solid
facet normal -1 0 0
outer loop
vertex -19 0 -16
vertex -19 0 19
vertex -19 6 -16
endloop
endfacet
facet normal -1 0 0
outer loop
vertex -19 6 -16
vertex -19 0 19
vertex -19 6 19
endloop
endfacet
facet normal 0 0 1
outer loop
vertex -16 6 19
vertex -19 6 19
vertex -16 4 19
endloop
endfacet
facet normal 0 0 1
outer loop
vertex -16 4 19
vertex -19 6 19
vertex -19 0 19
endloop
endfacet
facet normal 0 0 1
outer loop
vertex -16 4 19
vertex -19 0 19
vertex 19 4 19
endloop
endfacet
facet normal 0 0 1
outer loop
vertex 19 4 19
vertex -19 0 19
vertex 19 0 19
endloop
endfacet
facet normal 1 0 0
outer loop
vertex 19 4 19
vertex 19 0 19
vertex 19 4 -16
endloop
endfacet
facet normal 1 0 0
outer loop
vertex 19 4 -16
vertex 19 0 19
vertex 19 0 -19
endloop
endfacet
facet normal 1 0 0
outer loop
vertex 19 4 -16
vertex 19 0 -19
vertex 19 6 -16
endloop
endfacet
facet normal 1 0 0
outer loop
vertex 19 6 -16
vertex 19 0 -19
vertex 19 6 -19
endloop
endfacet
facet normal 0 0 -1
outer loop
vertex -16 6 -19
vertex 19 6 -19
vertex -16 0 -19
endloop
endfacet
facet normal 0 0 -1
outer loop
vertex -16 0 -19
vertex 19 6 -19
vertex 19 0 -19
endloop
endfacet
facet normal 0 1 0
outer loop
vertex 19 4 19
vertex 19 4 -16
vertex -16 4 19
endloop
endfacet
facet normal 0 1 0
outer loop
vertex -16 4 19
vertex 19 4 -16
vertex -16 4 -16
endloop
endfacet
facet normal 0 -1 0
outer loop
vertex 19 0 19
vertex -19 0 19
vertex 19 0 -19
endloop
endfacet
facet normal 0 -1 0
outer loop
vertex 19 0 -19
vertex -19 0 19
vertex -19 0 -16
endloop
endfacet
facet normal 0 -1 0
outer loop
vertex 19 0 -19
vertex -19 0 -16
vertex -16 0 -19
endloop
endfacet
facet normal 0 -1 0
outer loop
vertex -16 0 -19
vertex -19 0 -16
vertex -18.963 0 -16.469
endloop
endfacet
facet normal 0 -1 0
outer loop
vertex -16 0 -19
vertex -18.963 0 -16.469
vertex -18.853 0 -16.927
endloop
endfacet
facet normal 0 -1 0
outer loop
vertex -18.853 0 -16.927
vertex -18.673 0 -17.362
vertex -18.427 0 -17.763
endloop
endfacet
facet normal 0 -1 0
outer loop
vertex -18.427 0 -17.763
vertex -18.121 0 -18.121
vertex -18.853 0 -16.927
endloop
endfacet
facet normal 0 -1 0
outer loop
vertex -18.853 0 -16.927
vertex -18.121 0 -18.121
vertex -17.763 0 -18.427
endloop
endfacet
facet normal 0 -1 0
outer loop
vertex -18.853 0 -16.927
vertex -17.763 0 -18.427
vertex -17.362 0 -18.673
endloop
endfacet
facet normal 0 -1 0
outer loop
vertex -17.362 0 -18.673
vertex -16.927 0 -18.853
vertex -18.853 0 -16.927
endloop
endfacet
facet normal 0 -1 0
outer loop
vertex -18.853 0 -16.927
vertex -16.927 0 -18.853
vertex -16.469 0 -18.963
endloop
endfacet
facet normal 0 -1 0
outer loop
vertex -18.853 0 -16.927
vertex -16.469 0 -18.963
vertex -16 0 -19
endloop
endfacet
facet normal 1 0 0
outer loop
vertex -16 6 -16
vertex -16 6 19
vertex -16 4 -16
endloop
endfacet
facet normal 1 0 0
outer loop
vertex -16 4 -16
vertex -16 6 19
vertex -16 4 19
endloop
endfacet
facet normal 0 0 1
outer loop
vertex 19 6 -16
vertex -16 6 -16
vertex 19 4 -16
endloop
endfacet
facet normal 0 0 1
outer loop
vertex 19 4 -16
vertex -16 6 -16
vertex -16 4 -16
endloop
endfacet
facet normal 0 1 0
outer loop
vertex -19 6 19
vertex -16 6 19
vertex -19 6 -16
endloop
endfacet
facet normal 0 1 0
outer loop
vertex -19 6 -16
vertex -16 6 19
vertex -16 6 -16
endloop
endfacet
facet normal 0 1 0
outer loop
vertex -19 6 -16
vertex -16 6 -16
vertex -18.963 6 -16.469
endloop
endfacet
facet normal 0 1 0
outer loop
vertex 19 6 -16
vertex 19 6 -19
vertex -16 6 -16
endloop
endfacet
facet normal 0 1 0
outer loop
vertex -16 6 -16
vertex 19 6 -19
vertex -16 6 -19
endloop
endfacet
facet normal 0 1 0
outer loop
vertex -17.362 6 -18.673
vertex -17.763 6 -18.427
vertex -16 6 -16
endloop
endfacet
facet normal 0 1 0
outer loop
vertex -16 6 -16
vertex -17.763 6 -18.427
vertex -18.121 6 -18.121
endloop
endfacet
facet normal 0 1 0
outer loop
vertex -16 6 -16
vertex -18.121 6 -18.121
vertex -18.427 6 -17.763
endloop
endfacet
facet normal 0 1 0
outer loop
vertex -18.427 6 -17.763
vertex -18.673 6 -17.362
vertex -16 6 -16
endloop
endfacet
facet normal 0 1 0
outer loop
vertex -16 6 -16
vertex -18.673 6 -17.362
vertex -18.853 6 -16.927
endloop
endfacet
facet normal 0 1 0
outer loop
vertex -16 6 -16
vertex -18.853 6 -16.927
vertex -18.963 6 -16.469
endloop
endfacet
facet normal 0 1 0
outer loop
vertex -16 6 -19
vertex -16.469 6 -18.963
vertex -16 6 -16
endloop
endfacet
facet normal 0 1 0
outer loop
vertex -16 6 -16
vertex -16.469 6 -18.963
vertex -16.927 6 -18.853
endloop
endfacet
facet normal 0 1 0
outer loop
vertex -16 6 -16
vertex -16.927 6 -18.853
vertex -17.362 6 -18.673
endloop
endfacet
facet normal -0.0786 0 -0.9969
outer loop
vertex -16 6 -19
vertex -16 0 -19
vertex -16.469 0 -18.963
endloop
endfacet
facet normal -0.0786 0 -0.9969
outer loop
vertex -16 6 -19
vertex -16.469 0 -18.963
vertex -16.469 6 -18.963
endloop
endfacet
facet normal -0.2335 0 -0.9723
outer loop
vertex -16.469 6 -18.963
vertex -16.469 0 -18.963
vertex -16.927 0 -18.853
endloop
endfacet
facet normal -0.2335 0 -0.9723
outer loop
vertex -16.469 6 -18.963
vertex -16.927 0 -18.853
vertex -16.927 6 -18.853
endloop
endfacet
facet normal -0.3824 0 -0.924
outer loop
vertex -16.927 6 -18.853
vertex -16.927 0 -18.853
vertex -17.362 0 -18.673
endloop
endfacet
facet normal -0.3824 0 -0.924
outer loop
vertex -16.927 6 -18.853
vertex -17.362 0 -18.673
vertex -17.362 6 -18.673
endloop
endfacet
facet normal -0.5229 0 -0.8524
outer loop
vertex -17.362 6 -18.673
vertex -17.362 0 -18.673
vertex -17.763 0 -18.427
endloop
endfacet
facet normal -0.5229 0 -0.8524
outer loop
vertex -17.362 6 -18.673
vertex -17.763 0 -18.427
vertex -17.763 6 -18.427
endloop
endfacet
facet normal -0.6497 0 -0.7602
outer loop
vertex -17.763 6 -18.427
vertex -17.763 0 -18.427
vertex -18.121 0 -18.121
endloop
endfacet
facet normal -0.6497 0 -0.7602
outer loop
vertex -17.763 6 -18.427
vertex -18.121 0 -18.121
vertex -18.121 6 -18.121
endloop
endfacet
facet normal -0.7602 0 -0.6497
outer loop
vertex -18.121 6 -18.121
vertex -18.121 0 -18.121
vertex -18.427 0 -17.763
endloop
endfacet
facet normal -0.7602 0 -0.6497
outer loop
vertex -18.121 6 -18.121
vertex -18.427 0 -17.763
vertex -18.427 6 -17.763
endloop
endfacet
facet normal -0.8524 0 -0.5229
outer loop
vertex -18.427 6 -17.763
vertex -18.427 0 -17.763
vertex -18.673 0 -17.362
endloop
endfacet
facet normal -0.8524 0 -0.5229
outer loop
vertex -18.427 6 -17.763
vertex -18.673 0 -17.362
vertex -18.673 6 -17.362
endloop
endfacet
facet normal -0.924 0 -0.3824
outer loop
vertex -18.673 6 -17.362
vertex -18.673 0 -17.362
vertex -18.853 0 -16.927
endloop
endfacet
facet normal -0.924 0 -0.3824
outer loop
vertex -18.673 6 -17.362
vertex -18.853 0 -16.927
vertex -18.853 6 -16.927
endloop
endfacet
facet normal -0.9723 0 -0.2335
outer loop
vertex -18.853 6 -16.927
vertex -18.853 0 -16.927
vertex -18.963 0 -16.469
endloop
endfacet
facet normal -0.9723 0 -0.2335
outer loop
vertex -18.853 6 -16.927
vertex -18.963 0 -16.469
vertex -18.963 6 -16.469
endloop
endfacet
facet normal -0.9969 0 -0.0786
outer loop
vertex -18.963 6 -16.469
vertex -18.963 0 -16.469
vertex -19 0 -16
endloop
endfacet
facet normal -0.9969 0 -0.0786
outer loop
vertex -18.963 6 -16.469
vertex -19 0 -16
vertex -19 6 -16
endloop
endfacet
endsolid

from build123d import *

# Parameters (mm, degrees)
SKETCH1_W           = 38
SKETCH1_H           = 38
BOSS_EXTRUDE1_DEPTH = 4
BOSS_EXTRUDE2_DEPTH = 2
FILLET1_R           = 3


with BuildPart() as part:
    # Sketch1 → Boss-Extrude1 (new body)
    with BuildSketch(Plane(origin=(0, 0, 0), x_dir=(1, 0, 0), z_dir=(0, 1, 0))):
        Rectangle(SKETCH1_W, SKETCH1_H)
    extrude(amount=BOSS_EXTRUDE1_DEPTH)

    # Sketch2 → Boss-Extrude2 (add)
    with BuildSketch(Plane(origin=(0, 4, 0), x_dir=(1, 0, 0), z_dir=(0, 1, 0))):
        Polygon((-16, -19), (-19, -19), (-19, 19), (19, 19), (19, 16), (-16, 16), align=None)
    extrude(amount=BOSS_EXTRUDE2_DEPTH)

    # Fillet1
    fillet1_edges = [part.edges().sort_by_distance(p)[0] for p in [
        (-19, 3, -19),
    ]]
    fillet(fillet1_edges, radius=FILLET1_R)


solid = part.part
